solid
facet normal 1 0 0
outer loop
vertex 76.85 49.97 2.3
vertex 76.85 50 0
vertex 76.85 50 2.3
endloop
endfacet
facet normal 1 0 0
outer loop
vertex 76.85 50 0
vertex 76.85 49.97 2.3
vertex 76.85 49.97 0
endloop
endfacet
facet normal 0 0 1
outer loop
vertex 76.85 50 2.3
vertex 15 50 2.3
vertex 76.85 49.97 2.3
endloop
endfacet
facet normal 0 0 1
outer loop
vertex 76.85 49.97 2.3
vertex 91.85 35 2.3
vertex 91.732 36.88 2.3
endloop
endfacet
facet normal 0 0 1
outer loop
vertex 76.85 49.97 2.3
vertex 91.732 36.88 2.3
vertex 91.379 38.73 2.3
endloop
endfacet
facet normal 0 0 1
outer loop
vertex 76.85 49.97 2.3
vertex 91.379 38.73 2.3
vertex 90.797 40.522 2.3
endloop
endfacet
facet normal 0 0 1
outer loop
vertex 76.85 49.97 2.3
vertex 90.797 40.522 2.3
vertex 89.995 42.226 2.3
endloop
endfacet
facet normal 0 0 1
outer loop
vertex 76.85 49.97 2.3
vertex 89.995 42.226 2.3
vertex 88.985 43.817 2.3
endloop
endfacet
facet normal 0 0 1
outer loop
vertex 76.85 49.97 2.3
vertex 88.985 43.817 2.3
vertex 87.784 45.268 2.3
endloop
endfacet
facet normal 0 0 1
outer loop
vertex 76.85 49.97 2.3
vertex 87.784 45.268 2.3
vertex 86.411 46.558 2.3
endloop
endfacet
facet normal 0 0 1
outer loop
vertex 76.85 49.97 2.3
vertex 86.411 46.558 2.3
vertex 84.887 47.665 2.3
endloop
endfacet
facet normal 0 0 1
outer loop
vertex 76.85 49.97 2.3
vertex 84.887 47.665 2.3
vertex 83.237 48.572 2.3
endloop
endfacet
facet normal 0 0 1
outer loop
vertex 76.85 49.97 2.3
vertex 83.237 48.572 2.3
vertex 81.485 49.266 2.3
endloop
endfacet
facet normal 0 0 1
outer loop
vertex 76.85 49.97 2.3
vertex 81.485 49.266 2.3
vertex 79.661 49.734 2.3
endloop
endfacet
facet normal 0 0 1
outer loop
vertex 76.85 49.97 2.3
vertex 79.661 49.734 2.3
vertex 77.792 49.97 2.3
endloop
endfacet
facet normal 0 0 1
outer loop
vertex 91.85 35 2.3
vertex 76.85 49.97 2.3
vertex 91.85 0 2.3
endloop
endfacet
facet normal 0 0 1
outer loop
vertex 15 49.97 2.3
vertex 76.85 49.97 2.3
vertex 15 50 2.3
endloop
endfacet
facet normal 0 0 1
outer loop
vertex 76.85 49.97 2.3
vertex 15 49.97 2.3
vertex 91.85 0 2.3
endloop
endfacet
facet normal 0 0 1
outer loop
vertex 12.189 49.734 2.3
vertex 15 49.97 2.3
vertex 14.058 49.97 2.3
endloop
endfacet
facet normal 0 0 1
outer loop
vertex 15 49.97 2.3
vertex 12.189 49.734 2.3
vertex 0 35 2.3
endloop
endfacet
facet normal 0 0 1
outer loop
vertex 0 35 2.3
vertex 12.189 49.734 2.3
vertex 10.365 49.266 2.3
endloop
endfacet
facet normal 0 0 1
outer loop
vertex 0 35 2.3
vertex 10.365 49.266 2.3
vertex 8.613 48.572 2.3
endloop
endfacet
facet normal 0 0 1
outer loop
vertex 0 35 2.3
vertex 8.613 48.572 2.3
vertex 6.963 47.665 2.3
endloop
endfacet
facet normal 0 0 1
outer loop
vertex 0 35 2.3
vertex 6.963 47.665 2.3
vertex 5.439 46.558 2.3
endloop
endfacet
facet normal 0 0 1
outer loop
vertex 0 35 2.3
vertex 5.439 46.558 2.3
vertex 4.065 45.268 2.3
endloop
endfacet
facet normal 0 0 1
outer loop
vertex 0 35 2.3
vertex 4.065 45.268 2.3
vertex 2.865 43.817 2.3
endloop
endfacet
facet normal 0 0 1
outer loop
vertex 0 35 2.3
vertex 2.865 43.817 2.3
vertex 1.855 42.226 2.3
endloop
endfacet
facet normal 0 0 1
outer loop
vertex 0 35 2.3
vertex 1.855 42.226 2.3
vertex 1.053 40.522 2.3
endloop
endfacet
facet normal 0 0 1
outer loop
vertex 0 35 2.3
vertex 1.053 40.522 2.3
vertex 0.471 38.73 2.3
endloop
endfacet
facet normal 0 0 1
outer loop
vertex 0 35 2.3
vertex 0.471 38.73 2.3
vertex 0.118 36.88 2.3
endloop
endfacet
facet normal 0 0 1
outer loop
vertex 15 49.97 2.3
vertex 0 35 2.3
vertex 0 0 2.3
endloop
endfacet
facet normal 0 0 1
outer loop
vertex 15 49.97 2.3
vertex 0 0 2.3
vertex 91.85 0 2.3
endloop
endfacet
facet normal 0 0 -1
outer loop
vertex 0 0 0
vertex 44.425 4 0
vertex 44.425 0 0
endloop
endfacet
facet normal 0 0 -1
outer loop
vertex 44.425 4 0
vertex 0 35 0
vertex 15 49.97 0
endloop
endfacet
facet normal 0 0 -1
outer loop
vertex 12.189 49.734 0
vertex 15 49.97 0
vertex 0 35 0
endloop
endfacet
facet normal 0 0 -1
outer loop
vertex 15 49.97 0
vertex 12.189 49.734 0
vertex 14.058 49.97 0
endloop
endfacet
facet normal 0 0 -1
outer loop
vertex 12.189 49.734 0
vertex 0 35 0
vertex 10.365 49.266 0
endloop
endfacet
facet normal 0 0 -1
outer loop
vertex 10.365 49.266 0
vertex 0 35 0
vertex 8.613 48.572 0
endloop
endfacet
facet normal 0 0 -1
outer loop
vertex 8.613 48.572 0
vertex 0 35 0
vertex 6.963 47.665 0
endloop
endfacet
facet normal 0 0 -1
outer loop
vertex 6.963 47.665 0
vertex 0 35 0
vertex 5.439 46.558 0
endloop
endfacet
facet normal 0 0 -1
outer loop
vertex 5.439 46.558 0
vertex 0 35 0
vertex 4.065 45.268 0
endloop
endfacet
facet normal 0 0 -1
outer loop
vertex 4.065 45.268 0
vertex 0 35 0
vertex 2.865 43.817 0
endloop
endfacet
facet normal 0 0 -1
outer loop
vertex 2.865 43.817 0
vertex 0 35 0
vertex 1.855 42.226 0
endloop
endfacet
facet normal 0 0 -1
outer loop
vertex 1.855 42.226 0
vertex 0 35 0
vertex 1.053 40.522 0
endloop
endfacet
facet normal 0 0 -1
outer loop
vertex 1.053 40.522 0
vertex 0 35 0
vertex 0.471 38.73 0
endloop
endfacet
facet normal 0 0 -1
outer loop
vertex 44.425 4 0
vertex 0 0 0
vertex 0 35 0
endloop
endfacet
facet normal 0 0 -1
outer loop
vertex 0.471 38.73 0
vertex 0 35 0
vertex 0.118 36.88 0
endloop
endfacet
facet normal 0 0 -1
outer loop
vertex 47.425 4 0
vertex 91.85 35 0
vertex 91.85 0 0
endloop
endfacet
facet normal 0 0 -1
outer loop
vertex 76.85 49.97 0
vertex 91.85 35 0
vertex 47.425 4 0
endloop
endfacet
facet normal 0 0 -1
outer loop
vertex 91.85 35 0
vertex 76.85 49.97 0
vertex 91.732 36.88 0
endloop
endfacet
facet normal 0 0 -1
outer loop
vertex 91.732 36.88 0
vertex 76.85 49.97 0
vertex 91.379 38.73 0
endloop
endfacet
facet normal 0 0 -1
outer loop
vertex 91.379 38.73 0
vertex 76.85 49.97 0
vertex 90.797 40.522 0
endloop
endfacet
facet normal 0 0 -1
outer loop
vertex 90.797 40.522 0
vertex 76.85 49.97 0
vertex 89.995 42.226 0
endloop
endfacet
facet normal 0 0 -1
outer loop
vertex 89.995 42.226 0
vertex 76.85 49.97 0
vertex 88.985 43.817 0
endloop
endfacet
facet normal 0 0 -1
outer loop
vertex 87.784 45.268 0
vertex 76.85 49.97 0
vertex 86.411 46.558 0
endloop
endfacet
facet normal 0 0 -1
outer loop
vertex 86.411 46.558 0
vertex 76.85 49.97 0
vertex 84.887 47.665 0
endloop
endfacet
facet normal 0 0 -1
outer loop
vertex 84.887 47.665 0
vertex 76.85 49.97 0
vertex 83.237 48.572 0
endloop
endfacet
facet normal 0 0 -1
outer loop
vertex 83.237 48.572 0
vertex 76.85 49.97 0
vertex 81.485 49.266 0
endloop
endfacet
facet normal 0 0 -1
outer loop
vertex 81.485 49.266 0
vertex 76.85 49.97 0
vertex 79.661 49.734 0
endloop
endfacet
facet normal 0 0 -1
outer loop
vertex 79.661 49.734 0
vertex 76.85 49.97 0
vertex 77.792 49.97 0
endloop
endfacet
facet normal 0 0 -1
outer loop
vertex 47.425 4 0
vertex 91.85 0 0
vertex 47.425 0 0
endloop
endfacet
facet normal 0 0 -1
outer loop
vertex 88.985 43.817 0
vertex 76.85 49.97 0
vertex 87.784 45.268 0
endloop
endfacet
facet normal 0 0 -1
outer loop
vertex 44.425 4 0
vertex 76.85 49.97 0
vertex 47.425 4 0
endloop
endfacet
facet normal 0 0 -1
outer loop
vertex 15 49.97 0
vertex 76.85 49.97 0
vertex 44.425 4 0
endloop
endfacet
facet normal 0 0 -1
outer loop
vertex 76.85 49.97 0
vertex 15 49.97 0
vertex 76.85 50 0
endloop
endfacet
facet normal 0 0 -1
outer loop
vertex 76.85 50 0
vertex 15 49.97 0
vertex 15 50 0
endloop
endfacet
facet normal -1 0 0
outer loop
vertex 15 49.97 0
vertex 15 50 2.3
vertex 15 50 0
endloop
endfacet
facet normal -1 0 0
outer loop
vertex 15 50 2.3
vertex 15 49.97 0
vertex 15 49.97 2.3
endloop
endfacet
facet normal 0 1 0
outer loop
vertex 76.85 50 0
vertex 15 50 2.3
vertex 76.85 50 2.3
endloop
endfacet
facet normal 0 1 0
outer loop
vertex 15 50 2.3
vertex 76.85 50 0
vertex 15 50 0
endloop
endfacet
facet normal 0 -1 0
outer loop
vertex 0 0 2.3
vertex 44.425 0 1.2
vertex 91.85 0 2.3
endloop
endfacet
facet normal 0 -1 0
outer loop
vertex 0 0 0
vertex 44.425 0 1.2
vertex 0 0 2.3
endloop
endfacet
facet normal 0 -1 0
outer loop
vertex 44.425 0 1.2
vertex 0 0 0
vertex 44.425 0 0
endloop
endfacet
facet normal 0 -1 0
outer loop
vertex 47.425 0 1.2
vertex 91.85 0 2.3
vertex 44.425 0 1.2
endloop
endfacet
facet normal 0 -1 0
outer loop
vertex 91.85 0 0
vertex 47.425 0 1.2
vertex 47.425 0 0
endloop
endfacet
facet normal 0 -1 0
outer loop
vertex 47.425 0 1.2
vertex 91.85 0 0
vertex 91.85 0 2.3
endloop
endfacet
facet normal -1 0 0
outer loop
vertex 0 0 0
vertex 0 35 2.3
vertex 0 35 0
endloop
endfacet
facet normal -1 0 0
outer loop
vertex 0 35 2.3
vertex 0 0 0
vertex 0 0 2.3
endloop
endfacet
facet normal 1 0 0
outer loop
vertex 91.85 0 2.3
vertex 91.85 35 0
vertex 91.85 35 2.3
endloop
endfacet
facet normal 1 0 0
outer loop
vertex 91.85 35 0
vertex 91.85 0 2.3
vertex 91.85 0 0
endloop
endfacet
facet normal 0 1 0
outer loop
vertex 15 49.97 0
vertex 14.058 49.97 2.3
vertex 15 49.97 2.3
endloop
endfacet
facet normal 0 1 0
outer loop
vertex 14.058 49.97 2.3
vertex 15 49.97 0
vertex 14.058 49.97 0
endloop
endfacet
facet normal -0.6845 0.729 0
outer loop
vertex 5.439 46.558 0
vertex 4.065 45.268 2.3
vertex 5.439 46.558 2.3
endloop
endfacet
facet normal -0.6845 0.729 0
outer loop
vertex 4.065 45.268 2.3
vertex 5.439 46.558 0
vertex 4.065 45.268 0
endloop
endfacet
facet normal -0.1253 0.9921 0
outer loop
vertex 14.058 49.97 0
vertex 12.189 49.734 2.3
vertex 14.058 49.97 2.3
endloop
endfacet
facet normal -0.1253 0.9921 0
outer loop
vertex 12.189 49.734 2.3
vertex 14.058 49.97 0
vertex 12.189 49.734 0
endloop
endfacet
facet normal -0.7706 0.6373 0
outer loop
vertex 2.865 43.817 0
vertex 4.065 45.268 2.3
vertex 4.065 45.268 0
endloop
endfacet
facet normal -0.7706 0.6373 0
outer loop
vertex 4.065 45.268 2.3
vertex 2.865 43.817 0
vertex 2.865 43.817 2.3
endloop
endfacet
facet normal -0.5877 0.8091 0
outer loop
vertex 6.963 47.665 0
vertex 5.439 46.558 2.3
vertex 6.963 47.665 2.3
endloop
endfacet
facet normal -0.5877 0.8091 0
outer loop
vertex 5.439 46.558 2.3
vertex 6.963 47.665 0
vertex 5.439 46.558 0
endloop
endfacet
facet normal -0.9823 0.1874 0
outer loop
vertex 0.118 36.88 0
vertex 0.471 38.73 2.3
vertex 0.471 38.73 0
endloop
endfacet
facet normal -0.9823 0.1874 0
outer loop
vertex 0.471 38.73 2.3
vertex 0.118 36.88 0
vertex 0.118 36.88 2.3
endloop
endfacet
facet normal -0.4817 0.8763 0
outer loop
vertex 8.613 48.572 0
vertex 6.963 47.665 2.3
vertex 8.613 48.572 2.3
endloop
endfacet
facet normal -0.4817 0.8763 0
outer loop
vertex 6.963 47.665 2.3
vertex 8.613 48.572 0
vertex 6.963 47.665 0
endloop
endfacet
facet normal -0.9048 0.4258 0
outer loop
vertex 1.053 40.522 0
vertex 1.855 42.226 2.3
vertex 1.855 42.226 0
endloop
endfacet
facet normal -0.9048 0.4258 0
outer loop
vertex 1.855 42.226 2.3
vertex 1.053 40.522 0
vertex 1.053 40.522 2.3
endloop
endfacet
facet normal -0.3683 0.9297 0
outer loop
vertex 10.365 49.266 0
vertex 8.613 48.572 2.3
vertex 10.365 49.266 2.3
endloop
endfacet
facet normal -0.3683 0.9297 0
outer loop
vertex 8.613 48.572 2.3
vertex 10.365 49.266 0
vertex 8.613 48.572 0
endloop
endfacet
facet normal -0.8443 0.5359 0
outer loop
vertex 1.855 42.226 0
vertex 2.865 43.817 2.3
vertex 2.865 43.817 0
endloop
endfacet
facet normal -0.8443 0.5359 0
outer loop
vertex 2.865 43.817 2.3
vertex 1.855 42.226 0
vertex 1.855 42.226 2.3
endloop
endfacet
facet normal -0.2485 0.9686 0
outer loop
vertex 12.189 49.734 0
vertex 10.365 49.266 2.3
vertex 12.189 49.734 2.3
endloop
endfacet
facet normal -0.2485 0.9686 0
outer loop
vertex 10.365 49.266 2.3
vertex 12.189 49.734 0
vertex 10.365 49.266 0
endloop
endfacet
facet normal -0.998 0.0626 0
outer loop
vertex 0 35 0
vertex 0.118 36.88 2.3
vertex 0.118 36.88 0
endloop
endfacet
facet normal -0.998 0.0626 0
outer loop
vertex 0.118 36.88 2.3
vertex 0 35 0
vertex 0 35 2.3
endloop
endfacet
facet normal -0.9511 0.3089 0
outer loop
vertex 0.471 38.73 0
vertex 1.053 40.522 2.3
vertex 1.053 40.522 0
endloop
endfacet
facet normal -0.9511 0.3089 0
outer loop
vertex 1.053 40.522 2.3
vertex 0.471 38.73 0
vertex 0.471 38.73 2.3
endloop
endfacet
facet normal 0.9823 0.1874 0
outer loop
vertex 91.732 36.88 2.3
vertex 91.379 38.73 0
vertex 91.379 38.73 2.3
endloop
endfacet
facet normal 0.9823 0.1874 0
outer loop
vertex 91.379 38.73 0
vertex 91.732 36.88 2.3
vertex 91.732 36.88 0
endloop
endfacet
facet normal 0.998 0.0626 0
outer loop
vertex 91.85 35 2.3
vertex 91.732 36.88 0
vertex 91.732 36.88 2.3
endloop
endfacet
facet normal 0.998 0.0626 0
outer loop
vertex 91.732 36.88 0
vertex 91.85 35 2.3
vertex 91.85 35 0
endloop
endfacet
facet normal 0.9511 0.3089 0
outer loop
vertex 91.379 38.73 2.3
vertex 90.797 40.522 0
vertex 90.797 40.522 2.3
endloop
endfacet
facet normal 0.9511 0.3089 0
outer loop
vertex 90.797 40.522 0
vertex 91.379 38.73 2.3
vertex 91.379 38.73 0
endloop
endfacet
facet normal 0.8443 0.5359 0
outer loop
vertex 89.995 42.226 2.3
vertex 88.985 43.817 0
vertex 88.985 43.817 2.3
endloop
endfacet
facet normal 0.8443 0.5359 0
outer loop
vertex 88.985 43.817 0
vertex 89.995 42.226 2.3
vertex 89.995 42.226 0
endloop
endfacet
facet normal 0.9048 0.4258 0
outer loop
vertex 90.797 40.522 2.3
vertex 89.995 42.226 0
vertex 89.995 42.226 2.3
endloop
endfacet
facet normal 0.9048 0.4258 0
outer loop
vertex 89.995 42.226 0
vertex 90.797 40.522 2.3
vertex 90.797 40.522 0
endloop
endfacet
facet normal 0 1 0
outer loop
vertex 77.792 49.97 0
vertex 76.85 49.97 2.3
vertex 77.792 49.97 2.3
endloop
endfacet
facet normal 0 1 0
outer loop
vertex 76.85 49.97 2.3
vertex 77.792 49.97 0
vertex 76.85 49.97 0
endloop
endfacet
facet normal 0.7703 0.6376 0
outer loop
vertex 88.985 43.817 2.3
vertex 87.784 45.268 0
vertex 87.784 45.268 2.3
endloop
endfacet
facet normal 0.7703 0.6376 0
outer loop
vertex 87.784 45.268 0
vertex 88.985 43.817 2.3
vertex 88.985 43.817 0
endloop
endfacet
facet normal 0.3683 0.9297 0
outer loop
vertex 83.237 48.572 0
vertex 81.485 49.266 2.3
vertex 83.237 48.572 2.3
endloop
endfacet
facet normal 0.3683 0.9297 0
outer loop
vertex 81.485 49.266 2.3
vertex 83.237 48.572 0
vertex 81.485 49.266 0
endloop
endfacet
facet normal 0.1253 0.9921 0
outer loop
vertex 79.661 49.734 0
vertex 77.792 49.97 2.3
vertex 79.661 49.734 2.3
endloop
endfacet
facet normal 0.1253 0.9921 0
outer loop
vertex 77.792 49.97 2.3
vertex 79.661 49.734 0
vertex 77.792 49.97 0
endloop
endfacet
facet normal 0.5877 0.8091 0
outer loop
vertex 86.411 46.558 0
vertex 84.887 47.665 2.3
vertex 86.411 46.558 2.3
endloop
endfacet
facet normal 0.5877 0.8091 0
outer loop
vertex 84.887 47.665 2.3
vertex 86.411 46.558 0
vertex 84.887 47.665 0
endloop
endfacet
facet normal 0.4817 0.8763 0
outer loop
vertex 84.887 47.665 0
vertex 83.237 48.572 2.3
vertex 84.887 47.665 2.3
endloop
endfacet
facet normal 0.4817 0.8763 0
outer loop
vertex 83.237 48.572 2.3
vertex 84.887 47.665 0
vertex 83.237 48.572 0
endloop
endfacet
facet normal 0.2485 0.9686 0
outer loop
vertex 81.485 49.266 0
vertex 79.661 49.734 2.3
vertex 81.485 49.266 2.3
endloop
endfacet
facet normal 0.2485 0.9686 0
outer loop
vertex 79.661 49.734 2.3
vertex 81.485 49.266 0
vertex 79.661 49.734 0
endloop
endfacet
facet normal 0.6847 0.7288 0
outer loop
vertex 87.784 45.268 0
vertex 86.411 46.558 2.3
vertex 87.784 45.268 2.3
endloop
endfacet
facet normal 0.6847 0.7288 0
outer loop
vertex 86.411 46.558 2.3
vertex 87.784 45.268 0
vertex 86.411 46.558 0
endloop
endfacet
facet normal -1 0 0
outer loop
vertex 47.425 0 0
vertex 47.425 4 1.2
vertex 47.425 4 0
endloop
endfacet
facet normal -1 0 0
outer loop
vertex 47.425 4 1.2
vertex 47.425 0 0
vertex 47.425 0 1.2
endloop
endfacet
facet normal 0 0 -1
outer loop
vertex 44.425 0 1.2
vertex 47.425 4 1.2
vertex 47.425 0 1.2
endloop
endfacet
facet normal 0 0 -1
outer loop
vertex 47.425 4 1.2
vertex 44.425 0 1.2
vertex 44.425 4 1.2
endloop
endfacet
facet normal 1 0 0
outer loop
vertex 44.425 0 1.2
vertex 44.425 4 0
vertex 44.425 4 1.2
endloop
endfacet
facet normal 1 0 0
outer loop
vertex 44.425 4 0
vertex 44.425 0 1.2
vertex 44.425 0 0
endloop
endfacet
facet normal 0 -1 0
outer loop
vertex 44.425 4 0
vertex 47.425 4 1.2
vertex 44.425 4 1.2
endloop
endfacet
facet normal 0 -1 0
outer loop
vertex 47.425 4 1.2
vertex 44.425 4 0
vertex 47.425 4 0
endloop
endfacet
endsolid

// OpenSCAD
// Generated by SolidPython 1.1.3 on 2025-05-18 19:31:13
$fn=100;


difference() {
	union() {
		translate(v = [15.0000000000, 0, 0]) {
			cube(size = [61.8500000000, 50.0000000000, 2.3000000000]);
		}
		cube(size = [15.0000000000, 35.0000000000, 2.3000000000]);
		translate(v = [76.8500000000, 0, 0]) {
			cube(size = [15.0000000000, 35.0000000000, 2.3000000000]);
		}
		translate(v = [15.0000000000, 35.0000000000, 0]) {
			cylinder($fn = 50, h = 2.3000000000, r = 15.0000000000);
		}
		translate(v = [76.8500000000, 35.0000000000, 0]) {
			cylinder($fn = 50, h = 2.3000000000, r = 15.0000000000);
		}
	}
	translate(v = [44.4250000000, 0, 0]) {
		cube(size = [3, 4, 1.2000000000]);
	}
}
/***********************************************
*********      SolidPython code:      **********
************************************************
 
#! /home/tfili/Source/tfili/3d-printing/venv/bin/python

from solid import *
from solid.utils import *
import os
import subprocess

# Parameters
width = 91.85
height = 50.0
thickness = 2.3
corner_radius = 15.0

# Notch dimensions
notch_width = 3
notch_height = 4
notch_depth = 1.2

# Define main shape with rounded top corners
def main_shape():
    return union()(
        # Main rectangle body
        translate([corner_radius, 0, 0])(cube([width - 2 * corner_radius, height, thickness])),
        cube([corner_radius, height - corner_radius, thickness]),
        translate([width - corner_radius, 0, 0])(cube([corner_radius, height - corner_radius, thickness])),
        # Rounded top corners
        translate([corner_radius, height - corner_radius, 0])(cylinder(h=thickness, r=corner_radius, segments=50)),
        translate([width - corner_radius, height - corner_radius, 0])(cylinder(h=thickness, r=corner_radius, segments=50))
    )

# Notch to subtract from bottom center
def notch():
    return translate([
        (width - notch_width) / 2,
        0,
        0
    ])(cube([notch_width, notch_height, notch_depth]))

# Final model with notch cut out
model = difference()(
    main_shape(),
    notch()
)

# Export to SCAD
scad_render_to_file(model, "separator.scad", file_header='$fn=100;')

# Convert to STL
subprocess.run(["openscad", "-o", "separator.stl", "separator.scad"], stdout=subprocess.PIPE, stderr=subprocess.PIPE, text=True) 
 
************************************************/
